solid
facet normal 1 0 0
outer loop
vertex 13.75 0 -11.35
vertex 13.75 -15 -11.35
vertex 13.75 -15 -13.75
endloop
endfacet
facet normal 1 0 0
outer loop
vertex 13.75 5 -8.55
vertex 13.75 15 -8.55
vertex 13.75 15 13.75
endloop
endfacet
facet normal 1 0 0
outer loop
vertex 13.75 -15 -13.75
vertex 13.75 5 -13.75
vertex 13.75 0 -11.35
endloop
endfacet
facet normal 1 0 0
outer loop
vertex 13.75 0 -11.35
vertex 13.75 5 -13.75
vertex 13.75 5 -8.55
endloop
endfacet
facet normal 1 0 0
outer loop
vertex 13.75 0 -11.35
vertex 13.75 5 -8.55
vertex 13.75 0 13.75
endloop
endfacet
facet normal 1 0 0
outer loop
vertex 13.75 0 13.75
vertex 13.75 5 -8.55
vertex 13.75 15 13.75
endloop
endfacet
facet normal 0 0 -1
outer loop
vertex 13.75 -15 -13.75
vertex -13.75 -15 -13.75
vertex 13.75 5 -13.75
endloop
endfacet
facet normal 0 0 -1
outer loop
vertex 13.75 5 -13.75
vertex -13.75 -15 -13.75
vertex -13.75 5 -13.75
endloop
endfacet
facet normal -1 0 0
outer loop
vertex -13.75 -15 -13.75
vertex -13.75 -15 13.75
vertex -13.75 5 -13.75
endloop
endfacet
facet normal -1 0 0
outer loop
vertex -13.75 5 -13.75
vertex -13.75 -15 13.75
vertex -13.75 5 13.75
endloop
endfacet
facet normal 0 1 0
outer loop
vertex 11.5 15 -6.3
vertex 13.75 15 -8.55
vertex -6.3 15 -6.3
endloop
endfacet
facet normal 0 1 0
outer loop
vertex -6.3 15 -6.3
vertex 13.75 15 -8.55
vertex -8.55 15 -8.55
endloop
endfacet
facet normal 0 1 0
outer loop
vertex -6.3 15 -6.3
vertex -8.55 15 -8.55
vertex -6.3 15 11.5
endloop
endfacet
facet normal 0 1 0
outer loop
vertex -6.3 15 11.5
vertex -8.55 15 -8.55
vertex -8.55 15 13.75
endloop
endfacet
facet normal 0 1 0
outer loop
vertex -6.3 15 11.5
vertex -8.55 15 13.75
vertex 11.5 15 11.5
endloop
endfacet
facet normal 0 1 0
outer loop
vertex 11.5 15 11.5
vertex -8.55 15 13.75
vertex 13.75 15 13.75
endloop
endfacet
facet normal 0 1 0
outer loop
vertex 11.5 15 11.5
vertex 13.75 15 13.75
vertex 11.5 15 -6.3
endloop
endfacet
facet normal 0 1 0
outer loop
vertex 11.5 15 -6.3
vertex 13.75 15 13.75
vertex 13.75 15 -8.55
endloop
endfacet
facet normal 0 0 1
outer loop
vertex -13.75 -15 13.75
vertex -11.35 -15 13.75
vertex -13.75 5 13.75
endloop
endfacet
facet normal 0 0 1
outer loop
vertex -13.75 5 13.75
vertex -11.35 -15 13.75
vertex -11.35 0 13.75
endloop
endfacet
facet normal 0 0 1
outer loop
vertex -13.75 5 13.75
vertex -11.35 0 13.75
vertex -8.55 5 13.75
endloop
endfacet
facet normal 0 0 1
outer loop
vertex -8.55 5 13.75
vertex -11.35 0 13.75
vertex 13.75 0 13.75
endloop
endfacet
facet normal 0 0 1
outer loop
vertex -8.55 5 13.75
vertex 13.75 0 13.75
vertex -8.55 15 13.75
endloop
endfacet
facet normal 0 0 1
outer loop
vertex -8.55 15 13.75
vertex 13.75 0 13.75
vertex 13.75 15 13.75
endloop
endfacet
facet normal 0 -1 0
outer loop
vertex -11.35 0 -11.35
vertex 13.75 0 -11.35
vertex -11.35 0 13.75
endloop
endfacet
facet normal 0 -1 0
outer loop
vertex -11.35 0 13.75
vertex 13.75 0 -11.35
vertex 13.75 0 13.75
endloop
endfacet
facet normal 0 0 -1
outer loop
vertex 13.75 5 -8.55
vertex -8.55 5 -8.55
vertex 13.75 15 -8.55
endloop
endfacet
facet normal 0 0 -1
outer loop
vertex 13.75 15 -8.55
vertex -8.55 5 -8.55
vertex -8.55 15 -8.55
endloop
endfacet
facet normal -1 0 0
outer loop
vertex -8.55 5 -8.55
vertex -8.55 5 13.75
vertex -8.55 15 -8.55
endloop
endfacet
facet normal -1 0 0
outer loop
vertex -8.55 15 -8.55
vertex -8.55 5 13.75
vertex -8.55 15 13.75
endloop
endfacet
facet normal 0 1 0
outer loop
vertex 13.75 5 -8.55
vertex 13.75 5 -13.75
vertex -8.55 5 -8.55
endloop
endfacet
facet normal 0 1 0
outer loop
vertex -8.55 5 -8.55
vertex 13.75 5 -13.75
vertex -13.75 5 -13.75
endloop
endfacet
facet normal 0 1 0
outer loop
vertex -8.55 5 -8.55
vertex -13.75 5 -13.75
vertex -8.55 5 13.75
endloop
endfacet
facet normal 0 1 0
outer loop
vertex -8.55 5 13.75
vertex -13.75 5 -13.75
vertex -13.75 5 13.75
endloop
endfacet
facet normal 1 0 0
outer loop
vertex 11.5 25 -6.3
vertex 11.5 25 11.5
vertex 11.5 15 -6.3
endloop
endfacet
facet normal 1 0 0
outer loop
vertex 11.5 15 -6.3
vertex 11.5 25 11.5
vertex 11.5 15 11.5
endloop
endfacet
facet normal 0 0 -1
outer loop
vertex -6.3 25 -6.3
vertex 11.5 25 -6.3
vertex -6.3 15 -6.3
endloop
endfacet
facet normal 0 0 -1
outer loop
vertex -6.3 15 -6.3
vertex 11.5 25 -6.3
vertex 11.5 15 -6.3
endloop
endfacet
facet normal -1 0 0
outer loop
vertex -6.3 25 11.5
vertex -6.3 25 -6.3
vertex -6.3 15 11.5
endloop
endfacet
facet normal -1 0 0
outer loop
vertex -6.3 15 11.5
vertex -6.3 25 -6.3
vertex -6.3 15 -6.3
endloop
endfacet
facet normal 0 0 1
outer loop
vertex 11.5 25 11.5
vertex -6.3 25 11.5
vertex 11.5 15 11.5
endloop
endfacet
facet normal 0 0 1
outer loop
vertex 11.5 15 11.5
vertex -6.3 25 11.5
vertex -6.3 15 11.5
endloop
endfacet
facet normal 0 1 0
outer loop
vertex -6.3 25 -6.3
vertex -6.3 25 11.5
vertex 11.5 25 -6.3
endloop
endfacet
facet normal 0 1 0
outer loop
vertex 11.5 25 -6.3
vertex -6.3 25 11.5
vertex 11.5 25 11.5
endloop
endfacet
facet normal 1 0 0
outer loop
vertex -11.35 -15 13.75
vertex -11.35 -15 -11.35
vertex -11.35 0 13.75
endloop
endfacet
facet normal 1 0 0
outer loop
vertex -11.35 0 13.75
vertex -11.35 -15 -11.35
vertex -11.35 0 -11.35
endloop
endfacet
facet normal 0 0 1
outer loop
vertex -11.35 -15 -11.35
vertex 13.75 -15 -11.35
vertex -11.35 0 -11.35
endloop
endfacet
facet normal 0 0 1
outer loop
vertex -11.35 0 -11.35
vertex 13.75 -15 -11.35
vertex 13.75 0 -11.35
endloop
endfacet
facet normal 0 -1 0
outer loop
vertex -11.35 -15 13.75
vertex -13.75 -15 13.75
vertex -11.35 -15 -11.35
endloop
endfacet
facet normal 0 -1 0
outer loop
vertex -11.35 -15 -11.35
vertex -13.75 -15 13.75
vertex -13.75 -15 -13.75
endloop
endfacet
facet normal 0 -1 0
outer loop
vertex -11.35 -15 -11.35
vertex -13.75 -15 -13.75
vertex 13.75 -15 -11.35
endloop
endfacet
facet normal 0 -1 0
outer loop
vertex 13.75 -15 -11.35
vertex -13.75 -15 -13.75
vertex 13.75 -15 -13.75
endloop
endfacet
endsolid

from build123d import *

# Parameters (mm, degrees)
SKETCH1_W           = 27.5
SKETCH1_H           = 27.5
BOSS_EXTRUDE3_DEPTH = 15
CUT_EXTRUDE1_DEPTH  = 10
SKETCH4_W           = 17.8
SKETCH4_H           = 17.8
BOSS_EXTRUDE4_DEPTH = 10
BOSS_EXTRUDE5_DEPTH = 15


with BuildPart() as part:
    # Sketch1 → Boss-Extrude3 (new body)
    with BuildSketch(Plane(origin=(0, 0, 0), x_dir=(1, 0, 0), z_dir=(0, 1, 0))):
        Rectangle(SKETCH1_W, SKETCH1_H)
    extrude(amount=BOSS_EXTRUDE3_DEPTH)

    # Sketch3 → Cut-Extrude1 (cut)
    with BuildSketch(Plane(origin=(0, 15, 0), x_dir=(1, 0, 0), z_dir=(0, 1, 0))):
        Polygon((-13.75, -13.75), (-8.55, -13.75), (-8.55, 8.55), (13.75, 8.55), (13.75, 13.75), (-13.75, 13.75), align=None)
    extrude(amount=-CUT_EXTRUDE1_DEPTH, mode=Mode.SUBTRACT)

    # Sketch4 → Boss-Extrude4 (add)
    with BuildSketch(Plane(origin=(0, 15, 0), x_dir=(1, 0, 0), z_dir=(0, 1, 0))):
        with Locations((2.6, -2.6)):
            Rectangle(SKETCH4_W, SKETCH4_H)
    extrude(amount=BOSS_EXTRUDE4_DEPTH)

    # Sketch6 → Boss-Extrude5 (add)
    with BuildSketch(Plane.XZ):
        Polygon((-11.35, -11.35), (-11.35, 13.75), (-13.75, 13.75), (-13.75, -13.75), (13.75, -13.75), (13.75, -11.35), align=None)
    extrude(amount=BOSS_EXTRUDE5_DEPTH)


solid = part.part
